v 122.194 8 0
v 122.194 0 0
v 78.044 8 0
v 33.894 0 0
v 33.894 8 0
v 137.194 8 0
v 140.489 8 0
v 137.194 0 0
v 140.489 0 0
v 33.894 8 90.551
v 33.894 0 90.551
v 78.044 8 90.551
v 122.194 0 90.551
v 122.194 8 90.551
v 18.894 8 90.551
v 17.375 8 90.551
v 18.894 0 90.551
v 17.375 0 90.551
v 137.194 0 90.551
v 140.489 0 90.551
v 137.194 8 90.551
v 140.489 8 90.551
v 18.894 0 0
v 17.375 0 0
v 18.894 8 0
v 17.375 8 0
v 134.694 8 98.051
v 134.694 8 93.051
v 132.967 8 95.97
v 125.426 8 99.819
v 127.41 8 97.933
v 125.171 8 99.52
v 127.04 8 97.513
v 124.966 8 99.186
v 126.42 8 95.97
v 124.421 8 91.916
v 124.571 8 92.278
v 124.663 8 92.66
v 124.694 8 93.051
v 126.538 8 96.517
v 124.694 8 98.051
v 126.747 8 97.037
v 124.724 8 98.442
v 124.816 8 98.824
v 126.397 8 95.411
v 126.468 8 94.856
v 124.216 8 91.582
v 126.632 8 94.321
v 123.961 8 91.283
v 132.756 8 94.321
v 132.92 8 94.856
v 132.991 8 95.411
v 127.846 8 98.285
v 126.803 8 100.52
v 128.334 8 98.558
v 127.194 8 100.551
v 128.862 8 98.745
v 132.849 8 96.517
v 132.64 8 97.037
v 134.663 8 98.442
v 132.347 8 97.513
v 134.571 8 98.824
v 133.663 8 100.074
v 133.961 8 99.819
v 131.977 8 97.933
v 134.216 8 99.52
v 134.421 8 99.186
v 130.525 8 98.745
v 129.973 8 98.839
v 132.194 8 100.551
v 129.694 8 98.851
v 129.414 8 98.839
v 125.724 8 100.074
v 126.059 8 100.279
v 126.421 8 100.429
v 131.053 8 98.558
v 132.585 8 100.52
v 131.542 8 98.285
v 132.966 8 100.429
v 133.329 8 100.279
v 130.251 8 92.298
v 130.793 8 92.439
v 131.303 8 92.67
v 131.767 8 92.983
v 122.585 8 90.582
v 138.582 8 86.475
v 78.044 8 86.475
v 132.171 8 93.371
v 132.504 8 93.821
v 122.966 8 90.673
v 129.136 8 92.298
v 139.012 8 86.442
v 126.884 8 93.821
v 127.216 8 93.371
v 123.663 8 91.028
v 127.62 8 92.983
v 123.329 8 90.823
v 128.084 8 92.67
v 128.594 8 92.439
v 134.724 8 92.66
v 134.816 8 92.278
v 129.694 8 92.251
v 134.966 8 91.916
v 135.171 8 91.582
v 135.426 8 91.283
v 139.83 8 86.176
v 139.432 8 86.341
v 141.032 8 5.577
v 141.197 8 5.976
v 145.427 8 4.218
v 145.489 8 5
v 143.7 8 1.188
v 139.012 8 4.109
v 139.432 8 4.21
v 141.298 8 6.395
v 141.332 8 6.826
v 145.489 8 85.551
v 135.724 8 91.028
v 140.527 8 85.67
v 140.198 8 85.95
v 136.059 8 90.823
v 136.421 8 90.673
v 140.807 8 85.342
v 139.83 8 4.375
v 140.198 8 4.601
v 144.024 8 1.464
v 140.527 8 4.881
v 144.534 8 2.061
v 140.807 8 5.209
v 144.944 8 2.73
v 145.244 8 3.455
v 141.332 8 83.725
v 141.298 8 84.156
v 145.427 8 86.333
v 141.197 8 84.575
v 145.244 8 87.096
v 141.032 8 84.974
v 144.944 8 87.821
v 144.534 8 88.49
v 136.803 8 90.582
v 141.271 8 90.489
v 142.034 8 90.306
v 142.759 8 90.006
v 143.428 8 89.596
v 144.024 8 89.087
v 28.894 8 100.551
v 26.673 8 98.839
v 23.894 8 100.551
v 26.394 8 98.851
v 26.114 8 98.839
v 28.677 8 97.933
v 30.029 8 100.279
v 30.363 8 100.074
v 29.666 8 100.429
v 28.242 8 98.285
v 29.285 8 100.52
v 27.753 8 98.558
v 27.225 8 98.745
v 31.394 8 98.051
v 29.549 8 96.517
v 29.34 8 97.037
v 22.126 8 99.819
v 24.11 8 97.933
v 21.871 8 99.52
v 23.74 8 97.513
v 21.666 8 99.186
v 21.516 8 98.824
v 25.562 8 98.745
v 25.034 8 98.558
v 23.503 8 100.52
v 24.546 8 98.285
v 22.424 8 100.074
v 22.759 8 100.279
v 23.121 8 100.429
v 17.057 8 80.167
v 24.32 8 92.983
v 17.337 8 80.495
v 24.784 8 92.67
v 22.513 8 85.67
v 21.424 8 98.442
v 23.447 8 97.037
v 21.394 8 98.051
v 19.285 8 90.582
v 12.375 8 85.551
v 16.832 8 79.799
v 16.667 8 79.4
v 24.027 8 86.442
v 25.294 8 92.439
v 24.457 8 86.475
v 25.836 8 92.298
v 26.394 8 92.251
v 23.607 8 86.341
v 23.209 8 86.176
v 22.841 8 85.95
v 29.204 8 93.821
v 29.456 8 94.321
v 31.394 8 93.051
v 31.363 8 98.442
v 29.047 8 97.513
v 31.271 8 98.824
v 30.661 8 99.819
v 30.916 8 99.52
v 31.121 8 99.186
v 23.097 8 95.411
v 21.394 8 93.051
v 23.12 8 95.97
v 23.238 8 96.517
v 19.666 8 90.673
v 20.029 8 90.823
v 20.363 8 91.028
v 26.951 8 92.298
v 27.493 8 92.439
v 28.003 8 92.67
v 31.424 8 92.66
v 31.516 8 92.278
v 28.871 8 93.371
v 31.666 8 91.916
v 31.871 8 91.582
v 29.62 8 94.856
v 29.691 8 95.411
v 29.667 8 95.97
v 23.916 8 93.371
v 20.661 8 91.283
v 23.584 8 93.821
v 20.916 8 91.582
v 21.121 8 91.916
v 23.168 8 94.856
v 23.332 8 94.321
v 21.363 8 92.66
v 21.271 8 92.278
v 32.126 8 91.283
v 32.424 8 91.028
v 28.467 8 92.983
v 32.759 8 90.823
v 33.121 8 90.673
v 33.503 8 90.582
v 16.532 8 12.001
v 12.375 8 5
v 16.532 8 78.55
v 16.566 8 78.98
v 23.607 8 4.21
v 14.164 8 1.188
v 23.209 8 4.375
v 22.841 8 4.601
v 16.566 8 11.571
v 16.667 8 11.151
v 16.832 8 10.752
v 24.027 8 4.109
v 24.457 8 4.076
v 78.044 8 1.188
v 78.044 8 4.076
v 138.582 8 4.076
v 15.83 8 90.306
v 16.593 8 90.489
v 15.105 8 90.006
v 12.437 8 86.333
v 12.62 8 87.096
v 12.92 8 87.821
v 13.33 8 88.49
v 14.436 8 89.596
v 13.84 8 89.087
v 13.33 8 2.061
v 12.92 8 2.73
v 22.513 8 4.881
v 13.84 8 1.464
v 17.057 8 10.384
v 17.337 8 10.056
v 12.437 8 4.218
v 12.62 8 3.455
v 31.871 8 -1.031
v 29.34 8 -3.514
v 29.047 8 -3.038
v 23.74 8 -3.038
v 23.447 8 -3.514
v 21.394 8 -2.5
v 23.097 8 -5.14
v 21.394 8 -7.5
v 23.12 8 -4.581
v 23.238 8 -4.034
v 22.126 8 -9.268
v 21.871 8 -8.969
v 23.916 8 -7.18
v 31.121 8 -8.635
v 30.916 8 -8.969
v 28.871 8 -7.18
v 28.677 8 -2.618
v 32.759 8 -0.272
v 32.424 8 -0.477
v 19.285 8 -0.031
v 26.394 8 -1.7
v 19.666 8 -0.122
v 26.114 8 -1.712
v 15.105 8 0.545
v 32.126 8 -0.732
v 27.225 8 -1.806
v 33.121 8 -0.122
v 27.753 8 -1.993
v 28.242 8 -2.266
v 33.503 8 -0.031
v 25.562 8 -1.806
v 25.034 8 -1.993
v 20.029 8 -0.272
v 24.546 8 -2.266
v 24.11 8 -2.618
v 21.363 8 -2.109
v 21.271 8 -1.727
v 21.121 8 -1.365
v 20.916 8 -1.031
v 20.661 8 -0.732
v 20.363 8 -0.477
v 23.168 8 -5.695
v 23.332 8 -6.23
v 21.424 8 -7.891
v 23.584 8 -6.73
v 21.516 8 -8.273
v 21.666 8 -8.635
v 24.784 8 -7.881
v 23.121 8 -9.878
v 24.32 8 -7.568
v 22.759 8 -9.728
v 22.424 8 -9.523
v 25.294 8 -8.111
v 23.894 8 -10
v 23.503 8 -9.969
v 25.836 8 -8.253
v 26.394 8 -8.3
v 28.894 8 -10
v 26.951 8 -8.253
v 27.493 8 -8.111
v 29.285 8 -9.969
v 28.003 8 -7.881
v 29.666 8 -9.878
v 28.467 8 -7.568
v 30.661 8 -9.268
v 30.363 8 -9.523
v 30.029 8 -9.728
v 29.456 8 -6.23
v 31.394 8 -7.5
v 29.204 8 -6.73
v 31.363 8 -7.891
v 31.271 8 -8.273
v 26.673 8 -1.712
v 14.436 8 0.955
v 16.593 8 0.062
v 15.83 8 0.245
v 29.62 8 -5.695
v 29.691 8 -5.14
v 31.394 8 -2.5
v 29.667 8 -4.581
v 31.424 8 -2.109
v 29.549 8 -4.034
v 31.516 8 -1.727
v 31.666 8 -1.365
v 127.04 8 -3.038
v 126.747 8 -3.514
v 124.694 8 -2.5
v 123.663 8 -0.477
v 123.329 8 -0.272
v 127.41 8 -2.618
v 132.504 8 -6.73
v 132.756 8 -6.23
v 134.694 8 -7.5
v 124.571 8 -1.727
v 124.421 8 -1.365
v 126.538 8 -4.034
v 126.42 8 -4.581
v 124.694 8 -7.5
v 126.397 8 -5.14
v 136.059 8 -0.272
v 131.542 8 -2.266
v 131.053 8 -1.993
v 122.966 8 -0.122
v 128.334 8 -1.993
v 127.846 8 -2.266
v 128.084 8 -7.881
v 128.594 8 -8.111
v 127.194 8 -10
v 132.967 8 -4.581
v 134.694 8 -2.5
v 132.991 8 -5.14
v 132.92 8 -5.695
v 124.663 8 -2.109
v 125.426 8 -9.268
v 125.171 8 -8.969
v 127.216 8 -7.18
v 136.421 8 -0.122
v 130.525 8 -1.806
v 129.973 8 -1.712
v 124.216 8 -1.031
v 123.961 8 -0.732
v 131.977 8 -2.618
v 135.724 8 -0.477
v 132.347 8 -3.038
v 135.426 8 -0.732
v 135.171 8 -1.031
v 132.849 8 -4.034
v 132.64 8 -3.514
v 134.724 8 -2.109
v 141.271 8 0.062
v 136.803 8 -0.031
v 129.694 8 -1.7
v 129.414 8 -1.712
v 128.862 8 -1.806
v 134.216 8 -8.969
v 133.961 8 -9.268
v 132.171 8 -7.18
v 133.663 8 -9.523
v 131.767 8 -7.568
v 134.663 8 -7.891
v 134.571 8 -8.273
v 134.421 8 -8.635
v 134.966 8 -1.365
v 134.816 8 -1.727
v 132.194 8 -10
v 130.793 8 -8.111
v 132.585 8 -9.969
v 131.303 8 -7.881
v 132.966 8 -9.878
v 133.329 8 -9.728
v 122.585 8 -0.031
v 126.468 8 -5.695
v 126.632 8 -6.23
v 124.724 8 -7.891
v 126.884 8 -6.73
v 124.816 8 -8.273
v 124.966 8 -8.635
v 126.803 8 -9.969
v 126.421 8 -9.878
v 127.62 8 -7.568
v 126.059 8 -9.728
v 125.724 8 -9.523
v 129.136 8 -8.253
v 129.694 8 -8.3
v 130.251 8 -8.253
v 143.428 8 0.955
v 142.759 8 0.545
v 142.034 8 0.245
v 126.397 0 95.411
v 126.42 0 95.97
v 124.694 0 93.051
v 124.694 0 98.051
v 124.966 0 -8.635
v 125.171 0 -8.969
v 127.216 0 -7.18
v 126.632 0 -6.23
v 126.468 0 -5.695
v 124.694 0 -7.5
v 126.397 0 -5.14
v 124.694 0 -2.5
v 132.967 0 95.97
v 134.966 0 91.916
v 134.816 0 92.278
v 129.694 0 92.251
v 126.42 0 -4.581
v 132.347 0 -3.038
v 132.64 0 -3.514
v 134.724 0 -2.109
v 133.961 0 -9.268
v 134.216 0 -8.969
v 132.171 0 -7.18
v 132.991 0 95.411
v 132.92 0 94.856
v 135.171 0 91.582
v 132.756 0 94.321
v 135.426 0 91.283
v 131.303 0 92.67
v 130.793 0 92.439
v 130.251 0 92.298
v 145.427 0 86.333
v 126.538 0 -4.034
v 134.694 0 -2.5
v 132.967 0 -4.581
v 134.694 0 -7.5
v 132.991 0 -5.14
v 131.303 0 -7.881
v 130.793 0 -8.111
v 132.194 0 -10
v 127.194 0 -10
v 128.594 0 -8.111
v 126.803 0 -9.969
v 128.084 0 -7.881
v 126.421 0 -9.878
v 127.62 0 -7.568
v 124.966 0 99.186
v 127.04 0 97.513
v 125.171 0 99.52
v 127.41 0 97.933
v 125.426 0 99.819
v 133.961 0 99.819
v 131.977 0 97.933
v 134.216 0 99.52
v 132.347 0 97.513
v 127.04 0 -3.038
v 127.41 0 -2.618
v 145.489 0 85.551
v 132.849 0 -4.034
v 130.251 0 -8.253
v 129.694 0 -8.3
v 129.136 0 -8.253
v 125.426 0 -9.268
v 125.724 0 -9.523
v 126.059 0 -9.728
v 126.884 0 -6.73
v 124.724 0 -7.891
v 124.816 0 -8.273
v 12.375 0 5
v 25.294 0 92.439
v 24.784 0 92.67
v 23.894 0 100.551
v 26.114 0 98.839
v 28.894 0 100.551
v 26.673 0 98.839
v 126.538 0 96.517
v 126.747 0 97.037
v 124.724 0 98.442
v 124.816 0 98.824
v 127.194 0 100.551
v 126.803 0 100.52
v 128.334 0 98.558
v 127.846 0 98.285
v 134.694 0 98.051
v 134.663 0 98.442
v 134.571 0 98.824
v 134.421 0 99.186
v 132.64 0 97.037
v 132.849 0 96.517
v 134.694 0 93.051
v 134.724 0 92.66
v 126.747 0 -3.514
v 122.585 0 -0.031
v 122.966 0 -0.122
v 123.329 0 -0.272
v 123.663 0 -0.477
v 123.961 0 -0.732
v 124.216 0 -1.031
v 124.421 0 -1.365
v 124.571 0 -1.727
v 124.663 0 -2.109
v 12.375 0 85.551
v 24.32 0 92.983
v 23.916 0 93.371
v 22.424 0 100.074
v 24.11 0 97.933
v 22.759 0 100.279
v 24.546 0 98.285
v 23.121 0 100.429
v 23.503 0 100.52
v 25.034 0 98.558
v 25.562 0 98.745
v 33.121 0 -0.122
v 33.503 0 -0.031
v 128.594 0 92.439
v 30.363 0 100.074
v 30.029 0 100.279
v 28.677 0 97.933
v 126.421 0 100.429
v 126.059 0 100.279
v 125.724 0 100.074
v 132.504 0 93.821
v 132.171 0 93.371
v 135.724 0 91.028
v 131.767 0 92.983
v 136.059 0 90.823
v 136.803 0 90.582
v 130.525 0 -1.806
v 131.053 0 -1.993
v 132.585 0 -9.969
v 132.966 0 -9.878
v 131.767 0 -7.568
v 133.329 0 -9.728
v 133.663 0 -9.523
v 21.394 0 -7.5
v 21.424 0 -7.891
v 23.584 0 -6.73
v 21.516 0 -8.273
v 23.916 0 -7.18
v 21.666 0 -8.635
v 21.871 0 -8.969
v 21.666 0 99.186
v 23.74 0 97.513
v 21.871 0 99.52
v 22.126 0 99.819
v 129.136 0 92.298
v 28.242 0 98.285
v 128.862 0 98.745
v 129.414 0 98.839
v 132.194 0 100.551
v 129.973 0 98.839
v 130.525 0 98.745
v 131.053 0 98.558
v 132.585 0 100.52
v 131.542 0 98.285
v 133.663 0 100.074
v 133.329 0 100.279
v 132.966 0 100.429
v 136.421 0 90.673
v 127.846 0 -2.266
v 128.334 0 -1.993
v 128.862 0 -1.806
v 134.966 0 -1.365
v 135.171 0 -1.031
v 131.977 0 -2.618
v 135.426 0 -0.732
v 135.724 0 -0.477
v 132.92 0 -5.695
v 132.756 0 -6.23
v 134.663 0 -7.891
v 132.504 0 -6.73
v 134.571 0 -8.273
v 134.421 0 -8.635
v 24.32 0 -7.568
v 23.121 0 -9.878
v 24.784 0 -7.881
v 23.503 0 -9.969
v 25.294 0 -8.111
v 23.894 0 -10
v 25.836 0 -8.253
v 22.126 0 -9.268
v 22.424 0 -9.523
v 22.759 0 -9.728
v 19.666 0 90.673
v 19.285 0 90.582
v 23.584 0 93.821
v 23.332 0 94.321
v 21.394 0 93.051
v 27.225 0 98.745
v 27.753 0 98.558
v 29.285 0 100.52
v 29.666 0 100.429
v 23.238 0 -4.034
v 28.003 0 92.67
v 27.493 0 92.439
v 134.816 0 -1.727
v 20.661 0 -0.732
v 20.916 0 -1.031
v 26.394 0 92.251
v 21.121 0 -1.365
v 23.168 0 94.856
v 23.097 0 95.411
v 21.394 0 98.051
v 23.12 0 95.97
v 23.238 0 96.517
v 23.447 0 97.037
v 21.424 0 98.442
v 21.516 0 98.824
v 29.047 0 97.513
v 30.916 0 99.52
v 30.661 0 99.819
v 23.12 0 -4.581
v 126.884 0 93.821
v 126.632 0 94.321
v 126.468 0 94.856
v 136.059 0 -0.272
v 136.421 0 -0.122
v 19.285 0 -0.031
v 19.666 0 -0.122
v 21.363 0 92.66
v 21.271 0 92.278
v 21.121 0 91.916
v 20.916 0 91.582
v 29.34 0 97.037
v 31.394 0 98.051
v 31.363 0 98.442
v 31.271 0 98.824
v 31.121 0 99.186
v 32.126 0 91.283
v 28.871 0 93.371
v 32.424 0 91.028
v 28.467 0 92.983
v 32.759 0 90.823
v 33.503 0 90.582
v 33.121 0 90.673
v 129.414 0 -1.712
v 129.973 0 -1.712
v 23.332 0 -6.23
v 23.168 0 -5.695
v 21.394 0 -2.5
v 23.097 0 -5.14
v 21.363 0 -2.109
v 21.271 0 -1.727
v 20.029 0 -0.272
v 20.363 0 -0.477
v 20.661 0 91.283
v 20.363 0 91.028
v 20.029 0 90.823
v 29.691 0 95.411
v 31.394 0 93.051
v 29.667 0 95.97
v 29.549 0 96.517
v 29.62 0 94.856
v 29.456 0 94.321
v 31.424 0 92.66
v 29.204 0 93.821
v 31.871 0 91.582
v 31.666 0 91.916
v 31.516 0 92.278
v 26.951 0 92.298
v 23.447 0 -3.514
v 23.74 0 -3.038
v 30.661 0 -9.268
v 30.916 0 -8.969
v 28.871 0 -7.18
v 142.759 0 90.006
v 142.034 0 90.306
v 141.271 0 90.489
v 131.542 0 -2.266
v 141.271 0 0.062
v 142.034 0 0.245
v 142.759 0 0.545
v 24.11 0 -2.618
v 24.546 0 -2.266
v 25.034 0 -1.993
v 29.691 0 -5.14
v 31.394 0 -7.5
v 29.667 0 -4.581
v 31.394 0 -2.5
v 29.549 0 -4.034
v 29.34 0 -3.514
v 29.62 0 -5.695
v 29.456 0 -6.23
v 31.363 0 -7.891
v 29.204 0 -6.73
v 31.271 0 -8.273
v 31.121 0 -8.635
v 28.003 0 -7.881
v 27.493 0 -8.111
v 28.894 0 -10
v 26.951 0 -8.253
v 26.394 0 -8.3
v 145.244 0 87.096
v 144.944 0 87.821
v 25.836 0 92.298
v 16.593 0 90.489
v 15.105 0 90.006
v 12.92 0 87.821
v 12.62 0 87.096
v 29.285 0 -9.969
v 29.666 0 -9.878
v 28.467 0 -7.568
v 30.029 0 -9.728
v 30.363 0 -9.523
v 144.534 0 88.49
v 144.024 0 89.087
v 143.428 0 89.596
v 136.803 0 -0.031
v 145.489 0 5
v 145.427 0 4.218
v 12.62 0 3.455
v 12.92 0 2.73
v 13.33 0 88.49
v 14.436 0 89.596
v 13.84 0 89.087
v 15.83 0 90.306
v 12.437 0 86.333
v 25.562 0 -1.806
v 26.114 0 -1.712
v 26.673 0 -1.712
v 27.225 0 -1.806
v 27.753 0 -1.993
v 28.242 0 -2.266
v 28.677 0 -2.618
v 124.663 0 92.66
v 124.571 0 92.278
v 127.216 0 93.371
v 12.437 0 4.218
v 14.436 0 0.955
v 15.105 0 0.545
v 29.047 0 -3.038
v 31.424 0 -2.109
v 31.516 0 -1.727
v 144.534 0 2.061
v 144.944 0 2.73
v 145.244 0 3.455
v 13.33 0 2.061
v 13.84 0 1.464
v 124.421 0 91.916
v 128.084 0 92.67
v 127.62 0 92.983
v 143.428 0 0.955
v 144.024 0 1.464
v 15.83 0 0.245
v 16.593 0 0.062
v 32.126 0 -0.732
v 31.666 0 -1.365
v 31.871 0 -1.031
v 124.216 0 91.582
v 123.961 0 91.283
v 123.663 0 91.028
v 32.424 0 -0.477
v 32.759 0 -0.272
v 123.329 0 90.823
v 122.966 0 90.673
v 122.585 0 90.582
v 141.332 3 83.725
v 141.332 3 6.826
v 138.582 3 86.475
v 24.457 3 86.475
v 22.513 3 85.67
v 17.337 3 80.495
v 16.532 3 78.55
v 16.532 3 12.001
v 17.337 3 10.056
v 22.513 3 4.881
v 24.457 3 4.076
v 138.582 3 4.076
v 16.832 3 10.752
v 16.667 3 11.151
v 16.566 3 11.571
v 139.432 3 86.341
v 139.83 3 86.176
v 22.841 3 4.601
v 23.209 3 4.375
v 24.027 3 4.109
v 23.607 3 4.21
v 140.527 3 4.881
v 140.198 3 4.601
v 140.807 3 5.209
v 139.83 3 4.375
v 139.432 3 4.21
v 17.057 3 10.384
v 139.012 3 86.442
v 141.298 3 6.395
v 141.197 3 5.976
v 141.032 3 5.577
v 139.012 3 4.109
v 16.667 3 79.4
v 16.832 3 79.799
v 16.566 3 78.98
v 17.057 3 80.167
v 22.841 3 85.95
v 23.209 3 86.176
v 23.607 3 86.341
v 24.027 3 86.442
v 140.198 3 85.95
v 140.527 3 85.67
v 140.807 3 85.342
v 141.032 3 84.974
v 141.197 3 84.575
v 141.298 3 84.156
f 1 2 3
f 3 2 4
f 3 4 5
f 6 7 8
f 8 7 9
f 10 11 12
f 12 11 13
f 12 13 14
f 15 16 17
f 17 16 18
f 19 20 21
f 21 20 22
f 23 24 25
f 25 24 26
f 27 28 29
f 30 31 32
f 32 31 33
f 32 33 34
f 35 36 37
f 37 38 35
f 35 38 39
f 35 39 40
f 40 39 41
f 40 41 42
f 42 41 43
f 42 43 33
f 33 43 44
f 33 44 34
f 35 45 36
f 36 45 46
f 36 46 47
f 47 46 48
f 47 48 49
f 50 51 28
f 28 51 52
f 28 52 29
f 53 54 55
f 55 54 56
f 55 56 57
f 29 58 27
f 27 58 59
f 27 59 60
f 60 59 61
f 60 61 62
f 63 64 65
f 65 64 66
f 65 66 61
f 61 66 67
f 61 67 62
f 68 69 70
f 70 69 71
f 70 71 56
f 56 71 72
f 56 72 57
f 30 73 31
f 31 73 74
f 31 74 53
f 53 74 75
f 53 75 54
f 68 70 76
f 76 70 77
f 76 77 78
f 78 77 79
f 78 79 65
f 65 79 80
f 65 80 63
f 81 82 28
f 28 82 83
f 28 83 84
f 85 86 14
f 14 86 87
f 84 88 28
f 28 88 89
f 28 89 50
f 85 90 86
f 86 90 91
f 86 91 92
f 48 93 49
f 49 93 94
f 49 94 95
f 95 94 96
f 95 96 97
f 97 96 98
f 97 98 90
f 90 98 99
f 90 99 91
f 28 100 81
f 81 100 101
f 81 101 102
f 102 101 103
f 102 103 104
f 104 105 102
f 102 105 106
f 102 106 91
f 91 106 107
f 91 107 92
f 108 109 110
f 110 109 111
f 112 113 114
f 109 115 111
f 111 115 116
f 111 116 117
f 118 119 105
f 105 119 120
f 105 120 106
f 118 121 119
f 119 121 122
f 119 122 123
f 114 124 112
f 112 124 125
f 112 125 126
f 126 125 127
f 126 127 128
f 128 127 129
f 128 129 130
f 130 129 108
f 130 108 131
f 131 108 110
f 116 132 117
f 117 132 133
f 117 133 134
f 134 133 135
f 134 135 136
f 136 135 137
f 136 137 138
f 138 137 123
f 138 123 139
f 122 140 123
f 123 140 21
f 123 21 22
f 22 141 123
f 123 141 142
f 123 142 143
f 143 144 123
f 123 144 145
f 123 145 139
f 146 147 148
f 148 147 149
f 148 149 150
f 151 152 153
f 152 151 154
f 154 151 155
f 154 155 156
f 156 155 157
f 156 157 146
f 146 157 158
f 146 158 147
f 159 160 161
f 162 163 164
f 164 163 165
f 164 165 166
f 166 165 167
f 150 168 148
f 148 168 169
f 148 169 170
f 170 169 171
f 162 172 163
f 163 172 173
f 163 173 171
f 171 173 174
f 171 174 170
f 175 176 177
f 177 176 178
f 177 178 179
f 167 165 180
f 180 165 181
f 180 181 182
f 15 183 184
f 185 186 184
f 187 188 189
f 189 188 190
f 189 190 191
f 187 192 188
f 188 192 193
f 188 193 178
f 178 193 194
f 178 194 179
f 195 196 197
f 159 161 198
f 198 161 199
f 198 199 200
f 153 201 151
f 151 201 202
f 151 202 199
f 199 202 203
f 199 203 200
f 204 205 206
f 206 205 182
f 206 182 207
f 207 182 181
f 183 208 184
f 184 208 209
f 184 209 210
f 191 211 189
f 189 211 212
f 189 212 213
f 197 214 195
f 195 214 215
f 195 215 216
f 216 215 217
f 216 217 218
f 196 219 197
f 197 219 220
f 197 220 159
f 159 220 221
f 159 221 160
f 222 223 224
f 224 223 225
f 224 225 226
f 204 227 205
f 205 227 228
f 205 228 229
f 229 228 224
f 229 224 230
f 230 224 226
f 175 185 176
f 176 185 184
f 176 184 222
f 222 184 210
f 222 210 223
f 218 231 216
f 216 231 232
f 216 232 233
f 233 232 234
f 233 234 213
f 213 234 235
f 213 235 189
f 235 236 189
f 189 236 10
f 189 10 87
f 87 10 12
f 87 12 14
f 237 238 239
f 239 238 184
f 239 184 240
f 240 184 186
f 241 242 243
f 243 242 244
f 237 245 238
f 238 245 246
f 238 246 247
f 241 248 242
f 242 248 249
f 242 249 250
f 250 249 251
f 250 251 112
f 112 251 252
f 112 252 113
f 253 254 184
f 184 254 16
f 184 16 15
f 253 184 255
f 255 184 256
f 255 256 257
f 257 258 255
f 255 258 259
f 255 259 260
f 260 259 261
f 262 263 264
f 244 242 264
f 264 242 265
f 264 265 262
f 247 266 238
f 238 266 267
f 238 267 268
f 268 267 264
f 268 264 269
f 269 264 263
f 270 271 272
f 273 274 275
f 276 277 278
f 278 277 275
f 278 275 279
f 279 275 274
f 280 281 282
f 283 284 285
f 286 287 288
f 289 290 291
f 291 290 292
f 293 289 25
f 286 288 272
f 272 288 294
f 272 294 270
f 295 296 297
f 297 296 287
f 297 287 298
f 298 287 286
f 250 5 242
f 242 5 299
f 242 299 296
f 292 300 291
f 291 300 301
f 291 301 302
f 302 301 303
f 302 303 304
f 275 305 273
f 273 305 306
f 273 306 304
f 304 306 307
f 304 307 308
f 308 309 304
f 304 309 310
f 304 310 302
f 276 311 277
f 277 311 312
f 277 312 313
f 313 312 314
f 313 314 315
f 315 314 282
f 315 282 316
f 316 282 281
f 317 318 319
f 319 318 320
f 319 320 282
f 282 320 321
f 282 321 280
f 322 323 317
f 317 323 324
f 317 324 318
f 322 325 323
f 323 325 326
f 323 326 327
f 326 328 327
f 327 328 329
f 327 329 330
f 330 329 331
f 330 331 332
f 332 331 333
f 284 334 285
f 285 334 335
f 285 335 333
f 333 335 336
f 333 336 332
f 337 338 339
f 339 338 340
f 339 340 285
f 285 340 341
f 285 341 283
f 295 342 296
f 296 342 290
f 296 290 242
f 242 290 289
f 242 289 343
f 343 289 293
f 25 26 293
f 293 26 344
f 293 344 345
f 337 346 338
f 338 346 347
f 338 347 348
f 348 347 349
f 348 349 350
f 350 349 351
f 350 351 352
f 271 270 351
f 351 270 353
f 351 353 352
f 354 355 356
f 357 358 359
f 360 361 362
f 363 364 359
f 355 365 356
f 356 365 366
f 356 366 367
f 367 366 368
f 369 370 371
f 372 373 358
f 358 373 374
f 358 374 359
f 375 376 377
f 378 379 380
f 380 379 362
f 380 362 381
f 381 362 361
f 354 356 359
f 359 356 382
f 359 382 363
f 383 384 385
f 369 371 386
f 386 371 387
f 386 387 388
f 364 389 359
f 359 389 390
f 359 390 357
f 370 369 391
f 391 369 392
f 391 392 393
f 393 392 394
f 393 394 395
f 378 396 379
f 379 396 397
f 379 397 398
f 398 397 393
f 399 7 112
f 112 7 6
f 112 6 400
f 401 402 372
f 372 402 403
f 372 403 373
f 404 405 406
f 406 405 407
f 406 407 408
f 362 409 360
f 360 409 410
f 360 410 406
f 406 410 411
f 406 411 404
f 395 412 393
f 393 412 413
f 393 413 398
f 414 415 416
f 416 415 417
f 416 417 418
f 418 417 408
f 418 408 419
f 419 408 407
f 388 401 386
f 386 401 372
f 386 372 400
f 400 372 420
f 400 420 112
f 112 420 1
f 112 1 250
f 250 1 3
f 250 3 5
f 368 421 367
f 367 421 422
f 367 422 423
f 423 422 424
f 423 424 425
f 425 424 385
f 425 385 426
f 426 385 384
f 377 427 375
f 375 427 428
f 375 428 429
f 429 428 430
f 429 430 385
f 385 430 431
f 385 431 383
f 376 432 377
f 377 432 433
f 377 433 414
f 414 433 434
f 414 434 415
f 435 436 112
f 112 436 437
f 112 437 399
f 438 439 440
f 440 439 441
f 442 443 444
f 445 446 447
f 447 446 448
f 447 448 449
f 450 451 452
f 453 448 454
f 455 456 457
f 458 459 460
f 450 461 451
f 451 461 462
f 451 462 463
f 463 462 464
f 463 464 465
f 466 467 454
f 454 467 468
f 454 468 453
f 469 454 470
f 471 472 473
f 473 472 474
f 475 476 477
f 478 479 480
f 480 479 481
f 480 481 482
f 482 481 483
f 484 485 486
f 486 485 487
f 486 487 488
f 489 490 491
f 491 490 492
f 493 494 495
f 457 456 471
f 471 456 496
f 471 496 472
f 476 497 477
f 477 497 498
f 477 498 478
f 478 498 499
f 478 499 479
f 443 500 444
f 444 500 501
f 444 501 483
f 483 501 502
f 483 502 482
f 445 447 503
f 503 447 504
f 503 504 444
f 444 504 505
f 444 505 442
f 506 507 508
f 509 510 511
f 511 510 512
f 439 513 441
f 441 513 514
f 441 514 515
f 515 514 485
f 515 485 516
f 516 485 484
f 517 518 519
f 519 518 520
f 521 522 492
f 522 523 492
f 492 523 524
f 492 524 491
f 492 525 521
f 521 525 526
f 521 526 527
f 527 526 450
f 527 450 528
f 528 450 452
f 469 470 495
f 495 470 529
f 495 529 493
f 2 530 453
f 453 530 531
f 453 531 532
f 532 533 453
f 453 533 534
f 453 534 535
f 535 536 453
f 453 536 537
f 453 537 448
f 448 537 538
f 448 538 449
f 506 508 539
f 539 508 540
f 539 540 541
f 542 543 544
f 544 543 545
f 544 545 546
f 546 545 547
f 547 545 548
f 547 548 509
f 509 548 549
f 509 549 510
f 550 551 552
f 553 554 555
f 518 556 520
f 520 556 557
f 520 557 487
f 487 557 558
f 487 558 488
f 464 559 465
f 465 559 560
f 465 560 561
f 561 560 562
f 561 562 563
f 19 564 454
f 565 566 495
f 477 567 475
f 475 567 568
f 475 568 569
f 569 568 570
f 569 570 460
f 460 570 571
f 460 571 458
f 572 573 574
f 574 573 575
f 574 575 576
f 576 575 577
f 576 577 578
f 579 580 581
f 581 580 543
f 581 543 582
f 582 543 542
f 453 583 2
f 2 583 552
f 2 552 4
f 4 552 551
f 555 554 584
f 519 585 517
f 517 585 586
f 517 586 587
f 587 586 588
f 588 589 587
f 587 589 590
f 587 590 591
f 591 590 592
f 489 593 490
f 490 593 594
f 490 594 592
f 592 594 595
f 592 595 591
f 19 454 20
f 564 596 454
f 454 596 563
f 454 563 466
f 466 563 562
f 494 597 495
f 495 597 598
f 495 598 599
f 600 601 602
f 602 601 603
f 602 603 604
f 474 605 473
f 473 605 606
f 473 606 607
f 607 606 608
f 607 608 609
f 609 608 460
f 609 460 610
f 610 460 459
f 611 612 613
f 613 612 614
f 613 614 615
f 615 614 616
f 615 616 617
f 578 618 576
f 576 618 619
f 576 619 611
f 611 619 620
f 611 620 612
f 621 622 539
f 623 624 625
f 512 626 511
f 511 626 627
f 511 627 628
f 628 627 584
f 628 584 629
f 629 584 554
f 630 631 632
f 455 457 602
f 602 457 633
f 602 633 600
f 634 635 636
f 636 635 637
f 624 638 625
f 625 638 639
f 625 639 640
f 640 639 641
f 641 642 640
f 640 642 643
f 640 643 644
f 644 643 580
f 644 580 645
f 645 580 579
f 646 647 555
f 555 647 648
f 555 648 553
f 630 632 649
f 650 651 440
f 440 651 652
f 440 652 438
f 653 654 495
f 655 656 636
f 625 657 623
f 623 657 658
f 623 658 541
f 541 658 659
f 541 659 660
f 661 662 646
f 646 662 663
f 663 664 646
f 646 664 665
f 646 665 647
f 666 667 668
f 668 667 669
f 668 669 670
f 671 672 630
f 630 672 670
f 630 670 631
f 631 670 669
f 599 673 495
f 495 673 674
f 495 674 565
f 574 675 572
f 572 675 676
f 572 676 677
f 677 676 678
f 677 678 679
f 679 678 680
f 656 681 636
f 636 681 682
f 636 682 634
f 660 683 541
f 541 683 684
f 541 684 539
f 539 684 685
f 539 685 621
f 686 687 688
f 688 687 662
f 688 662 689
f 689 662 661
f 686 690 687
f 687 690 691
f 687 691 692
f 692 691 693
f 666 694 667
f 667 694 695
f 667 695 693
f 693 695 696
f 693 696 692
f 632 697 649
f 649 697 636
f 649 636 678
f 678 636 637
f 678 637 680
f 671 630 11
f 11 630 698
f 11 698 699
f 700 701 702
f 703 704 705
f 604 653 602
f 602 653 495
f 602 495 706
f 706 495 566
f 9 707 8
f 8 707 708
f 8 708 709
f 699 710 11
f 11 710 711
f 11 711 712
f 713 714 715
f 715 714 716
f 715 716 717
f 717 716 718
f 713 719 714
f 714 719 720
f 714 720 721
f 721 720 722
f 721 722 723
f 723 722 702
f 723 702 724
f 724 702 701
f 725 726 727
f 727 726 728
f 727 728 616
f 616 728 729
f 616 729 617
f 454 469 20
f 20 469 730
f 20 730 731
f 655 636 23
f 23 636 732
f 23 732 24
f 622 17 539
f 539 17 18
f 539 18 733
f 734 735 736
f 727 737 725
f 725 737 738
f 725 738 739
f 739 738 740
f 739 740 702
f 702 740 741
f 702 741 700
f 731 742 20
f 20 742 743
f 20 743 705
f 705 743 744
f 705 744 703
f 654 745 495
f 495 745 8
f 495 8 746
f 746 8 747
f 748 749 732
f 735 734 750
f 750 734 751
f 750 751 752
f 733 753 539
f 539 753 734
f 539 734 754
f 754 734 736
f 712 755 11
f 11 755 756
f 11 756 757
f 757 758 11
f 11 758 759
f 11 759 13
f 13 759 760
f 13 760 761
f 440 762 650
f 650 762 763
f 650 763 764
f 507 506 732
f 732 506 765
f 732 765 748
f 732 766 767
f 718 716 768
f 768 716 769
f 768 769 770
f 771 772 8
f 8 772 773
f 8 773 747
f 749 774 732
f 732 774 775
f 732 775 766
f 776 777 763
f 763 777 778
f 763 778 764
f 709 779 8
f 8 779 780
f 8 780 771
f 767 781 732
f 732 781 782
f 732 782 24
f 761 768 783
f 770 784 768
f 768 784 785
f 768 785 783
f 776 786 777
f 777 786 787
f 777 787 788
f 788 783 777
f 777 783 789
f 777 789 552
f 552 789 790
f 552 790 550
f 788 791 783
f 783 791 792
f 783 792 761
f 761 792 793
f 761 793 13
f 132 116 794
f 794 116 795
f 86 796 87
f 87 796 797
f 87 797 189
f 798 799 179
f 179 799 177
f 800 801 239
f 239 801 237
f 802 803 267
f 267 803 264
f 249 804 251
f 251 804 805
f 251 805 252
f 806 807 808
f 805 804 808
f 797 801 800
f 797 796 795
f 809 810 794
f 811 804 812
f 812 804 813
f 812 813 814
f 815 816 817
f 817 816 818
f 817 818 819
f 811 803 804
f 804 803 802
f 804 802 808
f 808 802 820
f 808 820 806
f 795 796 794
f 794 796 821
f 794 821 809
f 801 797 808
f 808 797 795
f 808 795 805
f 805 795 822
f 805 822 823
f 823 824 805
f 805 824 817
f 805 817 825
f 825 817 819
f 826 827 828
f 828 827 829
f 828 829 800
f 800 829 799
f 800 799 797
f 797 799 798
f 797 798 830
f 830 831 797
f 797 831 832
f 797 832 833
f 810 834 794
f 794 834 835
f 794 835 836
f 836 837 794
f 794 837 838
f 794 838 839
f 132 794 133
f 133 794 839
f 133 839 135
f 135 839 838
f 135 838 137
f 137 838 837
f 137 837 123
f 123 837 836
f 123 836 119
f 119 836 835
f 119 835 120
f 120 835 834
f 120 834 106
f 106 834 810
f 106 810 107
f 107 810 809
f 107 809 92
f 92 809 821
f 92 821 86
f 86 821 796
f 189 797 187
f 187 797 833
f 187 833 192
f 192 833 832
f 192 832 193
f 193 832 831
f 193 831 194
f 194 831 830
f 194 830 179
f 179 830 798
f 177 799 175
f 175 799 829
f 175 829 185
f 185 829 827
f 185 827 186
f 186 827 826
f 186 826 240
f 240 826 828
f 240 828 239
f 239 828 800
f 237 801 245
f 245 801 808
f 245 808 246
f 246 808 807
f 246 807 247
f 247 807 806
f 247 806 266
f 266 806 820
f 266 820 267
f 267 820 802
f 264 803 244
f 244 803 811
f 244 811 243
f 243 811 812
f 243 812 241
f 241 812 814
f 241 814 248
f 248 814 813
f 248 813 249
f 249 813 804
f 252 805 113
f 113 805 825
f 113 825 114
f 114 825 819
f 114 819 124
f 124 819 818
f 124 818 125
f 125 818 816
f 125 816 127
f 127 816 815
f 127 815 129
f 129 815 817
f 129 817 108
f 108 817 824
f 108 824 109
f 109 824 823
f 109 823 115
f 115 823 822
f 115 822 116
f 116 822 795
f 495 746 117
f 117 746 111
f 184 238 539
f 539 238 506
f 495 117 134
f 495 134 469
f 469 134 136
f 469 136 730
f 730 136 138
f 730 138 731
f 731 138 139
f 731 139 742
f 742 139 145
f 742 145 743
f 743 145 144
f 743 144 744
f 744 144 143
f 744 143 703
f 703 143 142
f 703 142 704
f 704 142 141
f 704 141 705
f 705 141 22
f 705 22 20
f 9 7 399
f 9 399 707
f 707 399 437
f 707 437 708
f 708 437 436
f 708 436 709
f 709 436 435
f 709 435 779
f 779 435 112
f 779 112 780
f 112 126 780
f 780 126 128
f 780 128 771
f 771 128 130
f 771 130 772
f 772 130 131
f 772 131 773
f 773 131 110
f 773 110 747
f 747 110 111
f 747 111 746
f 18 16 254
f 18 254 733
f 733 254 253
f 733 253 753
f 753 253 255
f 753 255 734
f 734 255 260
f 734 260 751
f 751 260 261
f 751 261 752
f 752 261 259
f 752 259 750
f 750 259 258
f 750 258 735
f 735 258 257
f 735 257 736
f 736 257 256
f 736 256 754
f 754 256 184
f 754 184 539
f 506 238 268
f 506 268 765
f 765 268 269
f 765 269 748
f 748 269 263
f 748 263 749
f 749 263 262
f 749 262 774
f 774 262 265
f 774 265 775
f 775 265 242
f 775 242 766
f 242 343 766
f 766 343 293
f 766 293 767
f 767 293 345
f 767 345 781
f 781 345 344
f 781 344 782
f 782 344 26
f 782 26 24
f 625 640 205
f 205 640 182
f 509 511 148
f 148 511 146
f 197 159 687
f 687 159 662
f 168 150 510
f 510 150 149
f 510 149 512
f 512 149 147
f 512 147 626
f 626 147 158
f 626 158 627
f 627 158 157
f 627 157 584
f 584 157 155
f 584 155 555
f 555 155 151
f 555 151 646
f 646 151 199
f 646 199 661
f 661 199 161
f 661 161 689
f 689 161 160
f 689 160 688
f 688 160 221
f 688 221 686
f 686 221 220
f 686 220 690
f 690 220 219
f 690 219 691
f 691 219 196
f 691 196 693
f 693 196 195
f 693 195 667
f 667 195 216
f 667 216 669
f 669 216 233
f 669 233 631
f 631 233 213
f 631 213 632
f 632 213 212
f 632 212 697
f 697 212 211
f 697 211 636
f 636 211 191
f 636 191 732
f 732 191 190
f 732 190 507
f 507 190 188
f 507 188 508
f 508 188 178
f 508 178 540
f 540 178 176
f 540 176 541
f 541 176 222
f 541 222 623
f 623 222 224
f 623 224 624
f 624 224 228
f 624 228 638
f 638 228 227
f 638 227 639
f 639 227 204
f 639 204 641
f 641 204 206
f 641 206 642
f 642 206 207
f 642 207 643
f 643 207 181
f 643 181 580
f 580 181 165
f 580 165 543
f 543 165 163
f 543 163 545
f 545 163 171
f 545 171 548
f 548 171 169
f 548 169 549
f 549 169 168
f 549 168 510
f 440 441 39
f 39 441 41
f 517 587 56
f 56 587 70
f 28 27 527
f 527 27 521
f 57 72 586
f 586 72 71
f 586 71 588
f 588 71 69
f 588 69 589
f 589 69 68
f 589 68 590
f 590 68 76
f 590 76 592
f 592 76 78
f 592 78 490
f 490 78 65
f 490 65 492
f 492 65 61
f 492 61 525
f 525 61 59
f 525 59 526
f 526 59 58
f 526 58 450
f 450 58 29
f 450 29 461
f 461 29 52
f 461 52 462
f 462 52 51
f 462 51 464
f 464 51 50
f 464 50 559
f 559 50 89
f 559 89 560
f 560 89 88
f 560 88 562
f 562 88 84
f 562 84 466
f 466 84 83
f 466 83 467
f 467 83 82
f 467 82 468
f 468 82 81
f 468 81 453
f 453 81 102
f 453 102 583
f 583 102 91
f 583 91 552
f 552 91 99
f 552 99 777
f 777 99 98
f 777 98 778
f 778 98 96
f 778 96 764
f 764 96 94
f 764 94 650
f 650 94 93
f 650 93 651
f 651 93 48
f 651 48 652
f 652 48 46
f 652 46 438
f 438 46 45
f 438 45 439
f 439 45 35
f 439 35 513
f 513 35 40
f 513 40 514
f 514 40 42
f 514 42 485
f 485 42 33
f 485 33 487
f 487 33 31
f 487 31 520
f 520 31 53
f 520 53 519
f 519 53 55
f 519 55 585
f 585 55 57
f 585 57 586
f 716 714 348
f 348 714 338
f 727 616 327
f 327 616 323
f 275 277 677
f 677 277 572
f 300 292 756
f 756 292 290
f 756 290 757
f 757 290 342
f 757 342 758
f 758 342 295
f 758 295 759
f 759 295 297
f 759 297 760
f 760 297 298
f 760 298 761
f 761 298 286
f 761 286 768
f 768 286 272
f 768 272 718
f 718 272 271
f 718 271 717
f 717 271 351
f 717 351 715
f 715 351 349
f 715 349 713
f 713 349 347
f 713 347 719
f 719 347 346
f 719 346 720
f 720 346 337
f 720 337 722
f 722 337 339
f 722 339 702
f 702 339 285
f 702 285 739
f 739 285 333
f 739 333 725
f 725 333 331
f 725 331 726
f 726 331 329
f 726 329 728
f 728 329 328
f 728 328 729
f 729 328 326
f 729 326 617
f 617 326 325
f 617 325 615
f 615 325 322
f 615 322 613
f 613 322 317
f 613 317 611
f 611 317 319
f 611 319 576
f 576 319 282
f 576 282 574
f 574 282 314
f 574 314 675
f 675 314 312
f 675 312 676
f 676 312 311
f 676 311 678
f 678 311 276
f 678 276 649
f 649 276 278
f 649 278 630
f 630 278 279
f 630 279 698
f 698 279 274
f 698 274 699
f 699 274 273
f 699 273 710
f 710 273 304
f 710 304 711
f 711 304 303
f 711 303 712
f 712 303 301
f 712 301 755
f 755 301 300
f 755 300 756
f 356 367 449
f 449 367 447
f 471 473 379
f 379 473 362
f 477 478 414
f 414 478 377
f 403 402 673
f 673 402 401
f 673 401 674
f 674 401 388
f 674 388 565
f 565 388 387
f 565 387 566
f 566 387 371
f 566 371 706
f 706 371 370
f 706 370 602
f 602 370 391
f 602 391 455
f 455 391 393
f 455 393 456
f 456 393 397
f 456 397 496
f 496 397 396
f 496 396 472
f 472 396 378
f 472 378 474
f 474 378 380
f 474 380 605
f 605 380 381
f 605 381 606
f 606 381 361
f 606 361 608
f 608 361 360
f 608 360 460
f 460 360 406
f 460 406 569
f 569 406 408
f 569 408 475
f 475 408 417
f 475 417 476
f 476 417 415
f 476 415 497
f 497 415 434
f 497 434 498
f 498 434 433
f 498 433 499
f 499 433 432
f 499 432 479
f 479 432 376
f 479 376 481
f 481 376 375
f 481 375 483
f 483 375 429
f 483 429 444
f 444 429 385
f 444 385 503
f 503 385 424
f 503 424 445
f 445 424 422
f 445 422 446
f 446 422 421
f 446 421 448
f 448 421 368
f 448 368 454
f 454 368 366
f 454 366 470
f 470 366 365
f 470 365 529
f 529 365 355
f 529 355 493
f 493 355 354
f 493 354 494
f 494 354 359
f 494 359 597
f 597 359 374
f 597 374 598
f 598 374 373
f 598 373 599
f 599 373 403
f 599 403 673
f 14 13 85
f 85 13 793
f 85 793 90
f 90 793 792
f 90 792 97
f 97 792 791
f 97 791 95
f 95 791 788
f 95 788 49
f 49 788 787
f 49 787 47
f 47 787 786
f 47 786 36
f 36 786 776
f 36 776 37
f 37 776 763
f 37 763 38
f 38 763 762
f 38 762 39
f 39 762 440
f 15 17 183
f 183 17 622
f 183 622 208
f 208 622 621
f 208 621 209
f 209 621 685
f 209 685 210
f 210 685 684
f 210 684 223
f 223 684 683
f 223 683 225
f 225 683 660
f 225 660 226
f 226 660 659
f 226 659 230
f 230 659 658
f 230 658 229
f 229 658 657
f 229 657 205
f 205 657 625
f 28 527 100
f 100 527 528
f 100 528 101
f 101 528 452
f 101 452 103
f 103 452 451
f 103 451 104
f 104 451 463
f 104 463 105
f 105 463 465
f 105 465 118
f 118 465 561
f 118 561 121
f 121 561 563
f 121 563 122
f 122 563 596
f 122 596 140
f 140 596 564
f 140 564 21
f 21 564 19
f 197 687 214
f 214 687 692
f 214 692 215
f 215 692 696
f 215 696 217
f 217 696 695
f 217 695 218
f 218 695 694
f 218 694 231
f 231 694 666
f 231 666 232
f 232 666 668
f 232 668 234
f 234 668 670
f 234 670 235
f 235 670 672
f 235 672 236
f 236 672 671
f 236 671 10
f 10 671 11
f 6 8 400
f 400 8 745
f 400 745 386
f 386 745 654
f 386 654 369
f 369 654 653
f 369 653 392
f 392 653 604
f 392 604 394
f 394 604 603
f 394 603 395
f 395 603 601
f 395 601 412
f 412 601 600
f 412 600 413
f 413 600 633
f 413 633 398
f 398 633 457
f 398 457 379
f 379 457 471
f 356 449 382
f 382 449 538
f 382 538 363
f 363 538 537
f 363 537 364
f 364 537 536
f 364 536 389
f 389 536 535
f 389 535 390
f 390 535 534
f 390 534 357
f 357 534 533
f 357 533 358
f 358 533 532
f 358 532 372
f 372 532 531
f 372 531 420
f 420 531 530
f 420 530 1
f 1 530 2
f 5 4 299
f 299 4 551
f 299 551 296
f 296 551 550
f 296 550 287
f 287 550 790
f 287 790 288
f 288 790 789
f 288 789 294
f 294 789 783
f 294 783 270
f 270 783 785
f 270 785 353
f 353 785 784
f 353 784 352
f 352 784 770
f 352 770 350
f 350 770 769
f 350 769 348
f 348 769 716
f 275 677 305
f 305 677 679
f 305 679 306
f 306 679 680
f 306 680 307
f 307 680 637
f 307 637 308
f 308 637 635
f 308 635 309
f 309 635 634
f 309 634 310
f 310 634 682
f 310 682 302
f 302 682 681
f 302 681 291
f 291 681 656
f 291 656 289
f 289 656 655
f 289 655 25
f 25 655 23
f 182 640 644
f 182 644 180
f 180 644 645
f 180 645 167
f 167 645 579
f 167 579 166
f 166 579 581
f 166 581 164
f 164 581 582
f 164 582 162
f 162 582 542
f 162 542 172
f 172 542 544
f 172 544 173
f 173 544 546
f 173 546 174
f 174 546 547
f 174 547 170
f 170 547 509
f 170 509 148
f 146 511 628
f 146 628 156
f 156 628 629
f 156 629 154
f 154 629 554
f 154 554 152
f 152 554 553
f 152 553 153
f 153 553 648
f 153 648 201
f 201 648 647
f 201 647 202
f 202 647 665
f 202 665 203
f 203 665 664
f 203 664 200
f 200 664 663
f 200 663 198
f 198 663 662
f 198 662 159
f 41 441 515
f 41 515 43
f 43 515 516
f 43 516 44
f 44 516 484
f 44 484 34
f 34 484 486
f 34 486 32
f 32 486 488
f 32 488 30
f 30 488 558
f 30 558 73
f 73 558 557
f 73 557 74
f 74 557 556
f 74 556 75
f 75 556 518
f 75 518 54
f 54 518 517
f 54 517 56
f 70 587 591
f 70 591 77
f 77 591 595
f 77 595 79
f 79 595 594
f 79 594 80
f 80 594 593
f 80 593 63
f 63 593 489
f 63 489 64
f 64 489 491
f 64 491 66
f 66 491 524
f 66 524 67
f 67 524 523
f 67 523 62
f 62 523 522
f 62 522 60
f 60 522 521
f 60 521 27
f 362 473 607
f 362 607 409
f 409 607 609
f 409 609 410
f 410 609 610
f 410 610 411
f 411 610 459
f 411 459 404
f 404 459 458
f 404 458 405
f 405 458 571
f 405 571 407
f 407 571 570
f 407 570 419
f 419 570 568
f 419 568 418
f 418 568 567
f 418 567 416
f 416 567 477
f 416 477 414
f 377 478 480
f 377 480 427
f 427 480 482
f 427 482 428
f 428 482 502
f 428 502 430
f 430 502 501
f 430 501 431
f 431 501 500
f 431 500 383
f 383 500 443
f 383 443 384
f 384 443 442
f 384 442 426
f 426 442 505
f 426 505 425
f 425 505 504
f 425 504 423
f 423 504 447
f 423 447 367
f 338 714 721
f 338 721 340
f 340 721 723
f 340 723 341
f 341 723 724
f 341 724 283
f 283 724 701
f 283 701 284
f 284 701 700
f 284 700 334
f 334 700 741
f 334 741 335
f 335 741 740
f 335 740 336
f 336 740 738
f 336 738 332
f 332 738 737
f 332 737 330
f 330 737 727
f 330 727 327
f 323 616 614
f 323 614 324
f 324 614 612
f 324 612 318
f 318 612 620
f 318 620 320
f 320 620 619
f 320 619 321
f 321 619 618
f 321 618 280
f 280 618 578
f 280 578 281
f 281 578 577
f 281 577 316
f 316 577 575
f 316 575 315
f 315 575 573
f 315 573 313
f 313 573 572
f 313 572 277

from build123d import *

# Parameters (mm, degrees)
SKETCH1_W            = 157.864
SKETCH1_H            = 90.551
BOSS_EXTRUDE1_DEPTH  = 8
CUT_EXTRUDE21_DEPTH  = 5
FILLET8_R            = 2.75
SKETCH29_W           = 12.37533
SKETCH29_H           = 90.551
CUT_EXTRUDE25_DEPTH  = 183.166204596
FILLET9_R            = 5
SKETCH36_W           = 10
SKETCH36_H           = 10
SKETCH36_R           = 3.3
BOSS_EXTRUDE10_DEPTH = 8
FILLET10_R           = 2.5


with BuildPart() as part:
    # Sketch1 → Boss-Extrude1 (new body)
    with BuildSketch(Plane(origin=(0, 0, 0), x_dir=(1, 0, 0), z_dir=(0, 1, 0))):
        with Locations((78.932, -45.2755)):
            Rectangle(SKETCH1_W, SKETCH1_H)
    extrude(amount=BOSS_EXTRUDE1_DEPTH)

    # Sketch23 → Cut-Extrude21 (cut)
    with BuildSketch(Plane(origin=(0, 8, 0), x_dir=(1, 0, 0), z_dir=(0, 1, 0))):
        Polygon((141.332, -86.4755), (23.3181173, -86.4755), (16.532, -79.6893827), (16.532, -10.8616173), (23.3181173, -4.0755), (141.332, -4.0755), align=None)
    extrude(amount=-CUT_EXTRUDE21_DEPTH, mode=Mode.SUBTRACT)

    # Fillet8
    fillet8_edges = [part.edges().sort_by_distance(p)[0] for p in [
        (141.332, 5.5, 4.0755),
        (141.332, 5.5, 86.4755),
        (23.3181173, 5.5, 86.4755),
        (16.532, 5.5, 79.6893827),
        (16.532, 5.5, 10.8616173),
        (23.3181173, 5.5, 4.0755),
    ]]
    fillet(fillet8_edges, radius=FILLET8_R)

    # Sketch29 → Cut-Extrude25 (cut, through all)
    with BuildSketch(Plane(origin=(0, 8, 0), x_dir=(1, 0, 0), z_dir=(0, 1, 0))):
        with Locations((151.676335, -45.2755)):
            Rectangle(SKETCH29_W, SKETCH29_H)
        with Locations((6.187665, -45.2755)):
            Rectangle(SKETCH29_W, SKETCH29_H)
    extrude(amount=-CUT_EXTRUDE25_DEPTH, mode=Mode.SUBTRACT)

    # Fillet9
    fillet9_edges = [part.edges().sort_by_distance(p)[0] for p in [
        (145.48867, 4, 90.551),
        (145.48867, 4, 0),
        (12.37533, 4, 0),
        (12.37533, 4, 90.551),
    ]]
    fillet(fillet9_edges, radius=FILLET9_R)

    # Sketch36 → Boss-Extrude10 (add)
    # profile 1 of 4: a face of its own
    with BuildSketch(Plane.XZ):
        with Locations((26.3936, 95.551)):
            Rectangle(SKETCH36_W, SKETCH36_H)
        with Locations(Location((26.3936, 95.551, 0), (0, 0, 270))):
            Circle(SKETCH36_R, mode=Mode.SUBTRACT)
    # profile 2 of 4: a face of its own
    with BuildSketch(Plane.XZ):
        with Locations((129.6936, 95.551)):
            Rectangle(SKETCH36_W, SKETCH36_H)
        with Locations(Location((129.6936, 95.551, 0), (0, 0, 270))):
            Circle(SKETCH36_R, mode=Mode.SUBTRACT)
    # profile 3 of 4: a face of its own
    with BuildSketch(Plane.XZ):
        with Locations((26.3936, -5)):
            Rectangle(SKETCH36_W, SKETCH36_H)
        with Locations(Location((26.3936, -5, 0), (0, 0, 270))):
            Circle(SKETCH36_R, mode=Mode.SUBTRACT)
    # profile 4 of 4: a face of its own
    with BuildSketch(Plane.XZ):
        with Locations((129.6936, -5)):
            Rectangle(SKETCH36_W, SKETCH36_H)
        with Locations(Location((129.6936, -5, 0), (0, 0, 270))):
            Circle(SKETCH36_R, mode=Mode.SUBTRACT)
    extrude(amount=-BOSS_EXTRUDE10_DEPTH)

    # Fillet10
    fillet10_edges = [part.edges().sort_by_distance(p)[0] for p in [
        (21.3936, 4, 90.551),
        (21.3936, 4, 100.551),
        (31.3936, 4, 100.551),
        (31.3936, 4, 90.551),
        (124.6936, 4, 90.551),
        (124.6936, 4, 100.551),
        (134.6936, 4, 100.551),
        (134.6936, 4, 90.551),
        (31.3936, 4, 0),
        (31.3936, 4, -10),
        (21.3936, 4, -10),
        (21.3936, 4, 0),
        (124.6936, 4, -10),
        (124.6936, 4, 0),
        (134.6936, 4, 0),
        (134.6936, 4, -10),
    ]]
    fillet(fillet10_edges, radius=FILLET10_R)


solid = part.part
